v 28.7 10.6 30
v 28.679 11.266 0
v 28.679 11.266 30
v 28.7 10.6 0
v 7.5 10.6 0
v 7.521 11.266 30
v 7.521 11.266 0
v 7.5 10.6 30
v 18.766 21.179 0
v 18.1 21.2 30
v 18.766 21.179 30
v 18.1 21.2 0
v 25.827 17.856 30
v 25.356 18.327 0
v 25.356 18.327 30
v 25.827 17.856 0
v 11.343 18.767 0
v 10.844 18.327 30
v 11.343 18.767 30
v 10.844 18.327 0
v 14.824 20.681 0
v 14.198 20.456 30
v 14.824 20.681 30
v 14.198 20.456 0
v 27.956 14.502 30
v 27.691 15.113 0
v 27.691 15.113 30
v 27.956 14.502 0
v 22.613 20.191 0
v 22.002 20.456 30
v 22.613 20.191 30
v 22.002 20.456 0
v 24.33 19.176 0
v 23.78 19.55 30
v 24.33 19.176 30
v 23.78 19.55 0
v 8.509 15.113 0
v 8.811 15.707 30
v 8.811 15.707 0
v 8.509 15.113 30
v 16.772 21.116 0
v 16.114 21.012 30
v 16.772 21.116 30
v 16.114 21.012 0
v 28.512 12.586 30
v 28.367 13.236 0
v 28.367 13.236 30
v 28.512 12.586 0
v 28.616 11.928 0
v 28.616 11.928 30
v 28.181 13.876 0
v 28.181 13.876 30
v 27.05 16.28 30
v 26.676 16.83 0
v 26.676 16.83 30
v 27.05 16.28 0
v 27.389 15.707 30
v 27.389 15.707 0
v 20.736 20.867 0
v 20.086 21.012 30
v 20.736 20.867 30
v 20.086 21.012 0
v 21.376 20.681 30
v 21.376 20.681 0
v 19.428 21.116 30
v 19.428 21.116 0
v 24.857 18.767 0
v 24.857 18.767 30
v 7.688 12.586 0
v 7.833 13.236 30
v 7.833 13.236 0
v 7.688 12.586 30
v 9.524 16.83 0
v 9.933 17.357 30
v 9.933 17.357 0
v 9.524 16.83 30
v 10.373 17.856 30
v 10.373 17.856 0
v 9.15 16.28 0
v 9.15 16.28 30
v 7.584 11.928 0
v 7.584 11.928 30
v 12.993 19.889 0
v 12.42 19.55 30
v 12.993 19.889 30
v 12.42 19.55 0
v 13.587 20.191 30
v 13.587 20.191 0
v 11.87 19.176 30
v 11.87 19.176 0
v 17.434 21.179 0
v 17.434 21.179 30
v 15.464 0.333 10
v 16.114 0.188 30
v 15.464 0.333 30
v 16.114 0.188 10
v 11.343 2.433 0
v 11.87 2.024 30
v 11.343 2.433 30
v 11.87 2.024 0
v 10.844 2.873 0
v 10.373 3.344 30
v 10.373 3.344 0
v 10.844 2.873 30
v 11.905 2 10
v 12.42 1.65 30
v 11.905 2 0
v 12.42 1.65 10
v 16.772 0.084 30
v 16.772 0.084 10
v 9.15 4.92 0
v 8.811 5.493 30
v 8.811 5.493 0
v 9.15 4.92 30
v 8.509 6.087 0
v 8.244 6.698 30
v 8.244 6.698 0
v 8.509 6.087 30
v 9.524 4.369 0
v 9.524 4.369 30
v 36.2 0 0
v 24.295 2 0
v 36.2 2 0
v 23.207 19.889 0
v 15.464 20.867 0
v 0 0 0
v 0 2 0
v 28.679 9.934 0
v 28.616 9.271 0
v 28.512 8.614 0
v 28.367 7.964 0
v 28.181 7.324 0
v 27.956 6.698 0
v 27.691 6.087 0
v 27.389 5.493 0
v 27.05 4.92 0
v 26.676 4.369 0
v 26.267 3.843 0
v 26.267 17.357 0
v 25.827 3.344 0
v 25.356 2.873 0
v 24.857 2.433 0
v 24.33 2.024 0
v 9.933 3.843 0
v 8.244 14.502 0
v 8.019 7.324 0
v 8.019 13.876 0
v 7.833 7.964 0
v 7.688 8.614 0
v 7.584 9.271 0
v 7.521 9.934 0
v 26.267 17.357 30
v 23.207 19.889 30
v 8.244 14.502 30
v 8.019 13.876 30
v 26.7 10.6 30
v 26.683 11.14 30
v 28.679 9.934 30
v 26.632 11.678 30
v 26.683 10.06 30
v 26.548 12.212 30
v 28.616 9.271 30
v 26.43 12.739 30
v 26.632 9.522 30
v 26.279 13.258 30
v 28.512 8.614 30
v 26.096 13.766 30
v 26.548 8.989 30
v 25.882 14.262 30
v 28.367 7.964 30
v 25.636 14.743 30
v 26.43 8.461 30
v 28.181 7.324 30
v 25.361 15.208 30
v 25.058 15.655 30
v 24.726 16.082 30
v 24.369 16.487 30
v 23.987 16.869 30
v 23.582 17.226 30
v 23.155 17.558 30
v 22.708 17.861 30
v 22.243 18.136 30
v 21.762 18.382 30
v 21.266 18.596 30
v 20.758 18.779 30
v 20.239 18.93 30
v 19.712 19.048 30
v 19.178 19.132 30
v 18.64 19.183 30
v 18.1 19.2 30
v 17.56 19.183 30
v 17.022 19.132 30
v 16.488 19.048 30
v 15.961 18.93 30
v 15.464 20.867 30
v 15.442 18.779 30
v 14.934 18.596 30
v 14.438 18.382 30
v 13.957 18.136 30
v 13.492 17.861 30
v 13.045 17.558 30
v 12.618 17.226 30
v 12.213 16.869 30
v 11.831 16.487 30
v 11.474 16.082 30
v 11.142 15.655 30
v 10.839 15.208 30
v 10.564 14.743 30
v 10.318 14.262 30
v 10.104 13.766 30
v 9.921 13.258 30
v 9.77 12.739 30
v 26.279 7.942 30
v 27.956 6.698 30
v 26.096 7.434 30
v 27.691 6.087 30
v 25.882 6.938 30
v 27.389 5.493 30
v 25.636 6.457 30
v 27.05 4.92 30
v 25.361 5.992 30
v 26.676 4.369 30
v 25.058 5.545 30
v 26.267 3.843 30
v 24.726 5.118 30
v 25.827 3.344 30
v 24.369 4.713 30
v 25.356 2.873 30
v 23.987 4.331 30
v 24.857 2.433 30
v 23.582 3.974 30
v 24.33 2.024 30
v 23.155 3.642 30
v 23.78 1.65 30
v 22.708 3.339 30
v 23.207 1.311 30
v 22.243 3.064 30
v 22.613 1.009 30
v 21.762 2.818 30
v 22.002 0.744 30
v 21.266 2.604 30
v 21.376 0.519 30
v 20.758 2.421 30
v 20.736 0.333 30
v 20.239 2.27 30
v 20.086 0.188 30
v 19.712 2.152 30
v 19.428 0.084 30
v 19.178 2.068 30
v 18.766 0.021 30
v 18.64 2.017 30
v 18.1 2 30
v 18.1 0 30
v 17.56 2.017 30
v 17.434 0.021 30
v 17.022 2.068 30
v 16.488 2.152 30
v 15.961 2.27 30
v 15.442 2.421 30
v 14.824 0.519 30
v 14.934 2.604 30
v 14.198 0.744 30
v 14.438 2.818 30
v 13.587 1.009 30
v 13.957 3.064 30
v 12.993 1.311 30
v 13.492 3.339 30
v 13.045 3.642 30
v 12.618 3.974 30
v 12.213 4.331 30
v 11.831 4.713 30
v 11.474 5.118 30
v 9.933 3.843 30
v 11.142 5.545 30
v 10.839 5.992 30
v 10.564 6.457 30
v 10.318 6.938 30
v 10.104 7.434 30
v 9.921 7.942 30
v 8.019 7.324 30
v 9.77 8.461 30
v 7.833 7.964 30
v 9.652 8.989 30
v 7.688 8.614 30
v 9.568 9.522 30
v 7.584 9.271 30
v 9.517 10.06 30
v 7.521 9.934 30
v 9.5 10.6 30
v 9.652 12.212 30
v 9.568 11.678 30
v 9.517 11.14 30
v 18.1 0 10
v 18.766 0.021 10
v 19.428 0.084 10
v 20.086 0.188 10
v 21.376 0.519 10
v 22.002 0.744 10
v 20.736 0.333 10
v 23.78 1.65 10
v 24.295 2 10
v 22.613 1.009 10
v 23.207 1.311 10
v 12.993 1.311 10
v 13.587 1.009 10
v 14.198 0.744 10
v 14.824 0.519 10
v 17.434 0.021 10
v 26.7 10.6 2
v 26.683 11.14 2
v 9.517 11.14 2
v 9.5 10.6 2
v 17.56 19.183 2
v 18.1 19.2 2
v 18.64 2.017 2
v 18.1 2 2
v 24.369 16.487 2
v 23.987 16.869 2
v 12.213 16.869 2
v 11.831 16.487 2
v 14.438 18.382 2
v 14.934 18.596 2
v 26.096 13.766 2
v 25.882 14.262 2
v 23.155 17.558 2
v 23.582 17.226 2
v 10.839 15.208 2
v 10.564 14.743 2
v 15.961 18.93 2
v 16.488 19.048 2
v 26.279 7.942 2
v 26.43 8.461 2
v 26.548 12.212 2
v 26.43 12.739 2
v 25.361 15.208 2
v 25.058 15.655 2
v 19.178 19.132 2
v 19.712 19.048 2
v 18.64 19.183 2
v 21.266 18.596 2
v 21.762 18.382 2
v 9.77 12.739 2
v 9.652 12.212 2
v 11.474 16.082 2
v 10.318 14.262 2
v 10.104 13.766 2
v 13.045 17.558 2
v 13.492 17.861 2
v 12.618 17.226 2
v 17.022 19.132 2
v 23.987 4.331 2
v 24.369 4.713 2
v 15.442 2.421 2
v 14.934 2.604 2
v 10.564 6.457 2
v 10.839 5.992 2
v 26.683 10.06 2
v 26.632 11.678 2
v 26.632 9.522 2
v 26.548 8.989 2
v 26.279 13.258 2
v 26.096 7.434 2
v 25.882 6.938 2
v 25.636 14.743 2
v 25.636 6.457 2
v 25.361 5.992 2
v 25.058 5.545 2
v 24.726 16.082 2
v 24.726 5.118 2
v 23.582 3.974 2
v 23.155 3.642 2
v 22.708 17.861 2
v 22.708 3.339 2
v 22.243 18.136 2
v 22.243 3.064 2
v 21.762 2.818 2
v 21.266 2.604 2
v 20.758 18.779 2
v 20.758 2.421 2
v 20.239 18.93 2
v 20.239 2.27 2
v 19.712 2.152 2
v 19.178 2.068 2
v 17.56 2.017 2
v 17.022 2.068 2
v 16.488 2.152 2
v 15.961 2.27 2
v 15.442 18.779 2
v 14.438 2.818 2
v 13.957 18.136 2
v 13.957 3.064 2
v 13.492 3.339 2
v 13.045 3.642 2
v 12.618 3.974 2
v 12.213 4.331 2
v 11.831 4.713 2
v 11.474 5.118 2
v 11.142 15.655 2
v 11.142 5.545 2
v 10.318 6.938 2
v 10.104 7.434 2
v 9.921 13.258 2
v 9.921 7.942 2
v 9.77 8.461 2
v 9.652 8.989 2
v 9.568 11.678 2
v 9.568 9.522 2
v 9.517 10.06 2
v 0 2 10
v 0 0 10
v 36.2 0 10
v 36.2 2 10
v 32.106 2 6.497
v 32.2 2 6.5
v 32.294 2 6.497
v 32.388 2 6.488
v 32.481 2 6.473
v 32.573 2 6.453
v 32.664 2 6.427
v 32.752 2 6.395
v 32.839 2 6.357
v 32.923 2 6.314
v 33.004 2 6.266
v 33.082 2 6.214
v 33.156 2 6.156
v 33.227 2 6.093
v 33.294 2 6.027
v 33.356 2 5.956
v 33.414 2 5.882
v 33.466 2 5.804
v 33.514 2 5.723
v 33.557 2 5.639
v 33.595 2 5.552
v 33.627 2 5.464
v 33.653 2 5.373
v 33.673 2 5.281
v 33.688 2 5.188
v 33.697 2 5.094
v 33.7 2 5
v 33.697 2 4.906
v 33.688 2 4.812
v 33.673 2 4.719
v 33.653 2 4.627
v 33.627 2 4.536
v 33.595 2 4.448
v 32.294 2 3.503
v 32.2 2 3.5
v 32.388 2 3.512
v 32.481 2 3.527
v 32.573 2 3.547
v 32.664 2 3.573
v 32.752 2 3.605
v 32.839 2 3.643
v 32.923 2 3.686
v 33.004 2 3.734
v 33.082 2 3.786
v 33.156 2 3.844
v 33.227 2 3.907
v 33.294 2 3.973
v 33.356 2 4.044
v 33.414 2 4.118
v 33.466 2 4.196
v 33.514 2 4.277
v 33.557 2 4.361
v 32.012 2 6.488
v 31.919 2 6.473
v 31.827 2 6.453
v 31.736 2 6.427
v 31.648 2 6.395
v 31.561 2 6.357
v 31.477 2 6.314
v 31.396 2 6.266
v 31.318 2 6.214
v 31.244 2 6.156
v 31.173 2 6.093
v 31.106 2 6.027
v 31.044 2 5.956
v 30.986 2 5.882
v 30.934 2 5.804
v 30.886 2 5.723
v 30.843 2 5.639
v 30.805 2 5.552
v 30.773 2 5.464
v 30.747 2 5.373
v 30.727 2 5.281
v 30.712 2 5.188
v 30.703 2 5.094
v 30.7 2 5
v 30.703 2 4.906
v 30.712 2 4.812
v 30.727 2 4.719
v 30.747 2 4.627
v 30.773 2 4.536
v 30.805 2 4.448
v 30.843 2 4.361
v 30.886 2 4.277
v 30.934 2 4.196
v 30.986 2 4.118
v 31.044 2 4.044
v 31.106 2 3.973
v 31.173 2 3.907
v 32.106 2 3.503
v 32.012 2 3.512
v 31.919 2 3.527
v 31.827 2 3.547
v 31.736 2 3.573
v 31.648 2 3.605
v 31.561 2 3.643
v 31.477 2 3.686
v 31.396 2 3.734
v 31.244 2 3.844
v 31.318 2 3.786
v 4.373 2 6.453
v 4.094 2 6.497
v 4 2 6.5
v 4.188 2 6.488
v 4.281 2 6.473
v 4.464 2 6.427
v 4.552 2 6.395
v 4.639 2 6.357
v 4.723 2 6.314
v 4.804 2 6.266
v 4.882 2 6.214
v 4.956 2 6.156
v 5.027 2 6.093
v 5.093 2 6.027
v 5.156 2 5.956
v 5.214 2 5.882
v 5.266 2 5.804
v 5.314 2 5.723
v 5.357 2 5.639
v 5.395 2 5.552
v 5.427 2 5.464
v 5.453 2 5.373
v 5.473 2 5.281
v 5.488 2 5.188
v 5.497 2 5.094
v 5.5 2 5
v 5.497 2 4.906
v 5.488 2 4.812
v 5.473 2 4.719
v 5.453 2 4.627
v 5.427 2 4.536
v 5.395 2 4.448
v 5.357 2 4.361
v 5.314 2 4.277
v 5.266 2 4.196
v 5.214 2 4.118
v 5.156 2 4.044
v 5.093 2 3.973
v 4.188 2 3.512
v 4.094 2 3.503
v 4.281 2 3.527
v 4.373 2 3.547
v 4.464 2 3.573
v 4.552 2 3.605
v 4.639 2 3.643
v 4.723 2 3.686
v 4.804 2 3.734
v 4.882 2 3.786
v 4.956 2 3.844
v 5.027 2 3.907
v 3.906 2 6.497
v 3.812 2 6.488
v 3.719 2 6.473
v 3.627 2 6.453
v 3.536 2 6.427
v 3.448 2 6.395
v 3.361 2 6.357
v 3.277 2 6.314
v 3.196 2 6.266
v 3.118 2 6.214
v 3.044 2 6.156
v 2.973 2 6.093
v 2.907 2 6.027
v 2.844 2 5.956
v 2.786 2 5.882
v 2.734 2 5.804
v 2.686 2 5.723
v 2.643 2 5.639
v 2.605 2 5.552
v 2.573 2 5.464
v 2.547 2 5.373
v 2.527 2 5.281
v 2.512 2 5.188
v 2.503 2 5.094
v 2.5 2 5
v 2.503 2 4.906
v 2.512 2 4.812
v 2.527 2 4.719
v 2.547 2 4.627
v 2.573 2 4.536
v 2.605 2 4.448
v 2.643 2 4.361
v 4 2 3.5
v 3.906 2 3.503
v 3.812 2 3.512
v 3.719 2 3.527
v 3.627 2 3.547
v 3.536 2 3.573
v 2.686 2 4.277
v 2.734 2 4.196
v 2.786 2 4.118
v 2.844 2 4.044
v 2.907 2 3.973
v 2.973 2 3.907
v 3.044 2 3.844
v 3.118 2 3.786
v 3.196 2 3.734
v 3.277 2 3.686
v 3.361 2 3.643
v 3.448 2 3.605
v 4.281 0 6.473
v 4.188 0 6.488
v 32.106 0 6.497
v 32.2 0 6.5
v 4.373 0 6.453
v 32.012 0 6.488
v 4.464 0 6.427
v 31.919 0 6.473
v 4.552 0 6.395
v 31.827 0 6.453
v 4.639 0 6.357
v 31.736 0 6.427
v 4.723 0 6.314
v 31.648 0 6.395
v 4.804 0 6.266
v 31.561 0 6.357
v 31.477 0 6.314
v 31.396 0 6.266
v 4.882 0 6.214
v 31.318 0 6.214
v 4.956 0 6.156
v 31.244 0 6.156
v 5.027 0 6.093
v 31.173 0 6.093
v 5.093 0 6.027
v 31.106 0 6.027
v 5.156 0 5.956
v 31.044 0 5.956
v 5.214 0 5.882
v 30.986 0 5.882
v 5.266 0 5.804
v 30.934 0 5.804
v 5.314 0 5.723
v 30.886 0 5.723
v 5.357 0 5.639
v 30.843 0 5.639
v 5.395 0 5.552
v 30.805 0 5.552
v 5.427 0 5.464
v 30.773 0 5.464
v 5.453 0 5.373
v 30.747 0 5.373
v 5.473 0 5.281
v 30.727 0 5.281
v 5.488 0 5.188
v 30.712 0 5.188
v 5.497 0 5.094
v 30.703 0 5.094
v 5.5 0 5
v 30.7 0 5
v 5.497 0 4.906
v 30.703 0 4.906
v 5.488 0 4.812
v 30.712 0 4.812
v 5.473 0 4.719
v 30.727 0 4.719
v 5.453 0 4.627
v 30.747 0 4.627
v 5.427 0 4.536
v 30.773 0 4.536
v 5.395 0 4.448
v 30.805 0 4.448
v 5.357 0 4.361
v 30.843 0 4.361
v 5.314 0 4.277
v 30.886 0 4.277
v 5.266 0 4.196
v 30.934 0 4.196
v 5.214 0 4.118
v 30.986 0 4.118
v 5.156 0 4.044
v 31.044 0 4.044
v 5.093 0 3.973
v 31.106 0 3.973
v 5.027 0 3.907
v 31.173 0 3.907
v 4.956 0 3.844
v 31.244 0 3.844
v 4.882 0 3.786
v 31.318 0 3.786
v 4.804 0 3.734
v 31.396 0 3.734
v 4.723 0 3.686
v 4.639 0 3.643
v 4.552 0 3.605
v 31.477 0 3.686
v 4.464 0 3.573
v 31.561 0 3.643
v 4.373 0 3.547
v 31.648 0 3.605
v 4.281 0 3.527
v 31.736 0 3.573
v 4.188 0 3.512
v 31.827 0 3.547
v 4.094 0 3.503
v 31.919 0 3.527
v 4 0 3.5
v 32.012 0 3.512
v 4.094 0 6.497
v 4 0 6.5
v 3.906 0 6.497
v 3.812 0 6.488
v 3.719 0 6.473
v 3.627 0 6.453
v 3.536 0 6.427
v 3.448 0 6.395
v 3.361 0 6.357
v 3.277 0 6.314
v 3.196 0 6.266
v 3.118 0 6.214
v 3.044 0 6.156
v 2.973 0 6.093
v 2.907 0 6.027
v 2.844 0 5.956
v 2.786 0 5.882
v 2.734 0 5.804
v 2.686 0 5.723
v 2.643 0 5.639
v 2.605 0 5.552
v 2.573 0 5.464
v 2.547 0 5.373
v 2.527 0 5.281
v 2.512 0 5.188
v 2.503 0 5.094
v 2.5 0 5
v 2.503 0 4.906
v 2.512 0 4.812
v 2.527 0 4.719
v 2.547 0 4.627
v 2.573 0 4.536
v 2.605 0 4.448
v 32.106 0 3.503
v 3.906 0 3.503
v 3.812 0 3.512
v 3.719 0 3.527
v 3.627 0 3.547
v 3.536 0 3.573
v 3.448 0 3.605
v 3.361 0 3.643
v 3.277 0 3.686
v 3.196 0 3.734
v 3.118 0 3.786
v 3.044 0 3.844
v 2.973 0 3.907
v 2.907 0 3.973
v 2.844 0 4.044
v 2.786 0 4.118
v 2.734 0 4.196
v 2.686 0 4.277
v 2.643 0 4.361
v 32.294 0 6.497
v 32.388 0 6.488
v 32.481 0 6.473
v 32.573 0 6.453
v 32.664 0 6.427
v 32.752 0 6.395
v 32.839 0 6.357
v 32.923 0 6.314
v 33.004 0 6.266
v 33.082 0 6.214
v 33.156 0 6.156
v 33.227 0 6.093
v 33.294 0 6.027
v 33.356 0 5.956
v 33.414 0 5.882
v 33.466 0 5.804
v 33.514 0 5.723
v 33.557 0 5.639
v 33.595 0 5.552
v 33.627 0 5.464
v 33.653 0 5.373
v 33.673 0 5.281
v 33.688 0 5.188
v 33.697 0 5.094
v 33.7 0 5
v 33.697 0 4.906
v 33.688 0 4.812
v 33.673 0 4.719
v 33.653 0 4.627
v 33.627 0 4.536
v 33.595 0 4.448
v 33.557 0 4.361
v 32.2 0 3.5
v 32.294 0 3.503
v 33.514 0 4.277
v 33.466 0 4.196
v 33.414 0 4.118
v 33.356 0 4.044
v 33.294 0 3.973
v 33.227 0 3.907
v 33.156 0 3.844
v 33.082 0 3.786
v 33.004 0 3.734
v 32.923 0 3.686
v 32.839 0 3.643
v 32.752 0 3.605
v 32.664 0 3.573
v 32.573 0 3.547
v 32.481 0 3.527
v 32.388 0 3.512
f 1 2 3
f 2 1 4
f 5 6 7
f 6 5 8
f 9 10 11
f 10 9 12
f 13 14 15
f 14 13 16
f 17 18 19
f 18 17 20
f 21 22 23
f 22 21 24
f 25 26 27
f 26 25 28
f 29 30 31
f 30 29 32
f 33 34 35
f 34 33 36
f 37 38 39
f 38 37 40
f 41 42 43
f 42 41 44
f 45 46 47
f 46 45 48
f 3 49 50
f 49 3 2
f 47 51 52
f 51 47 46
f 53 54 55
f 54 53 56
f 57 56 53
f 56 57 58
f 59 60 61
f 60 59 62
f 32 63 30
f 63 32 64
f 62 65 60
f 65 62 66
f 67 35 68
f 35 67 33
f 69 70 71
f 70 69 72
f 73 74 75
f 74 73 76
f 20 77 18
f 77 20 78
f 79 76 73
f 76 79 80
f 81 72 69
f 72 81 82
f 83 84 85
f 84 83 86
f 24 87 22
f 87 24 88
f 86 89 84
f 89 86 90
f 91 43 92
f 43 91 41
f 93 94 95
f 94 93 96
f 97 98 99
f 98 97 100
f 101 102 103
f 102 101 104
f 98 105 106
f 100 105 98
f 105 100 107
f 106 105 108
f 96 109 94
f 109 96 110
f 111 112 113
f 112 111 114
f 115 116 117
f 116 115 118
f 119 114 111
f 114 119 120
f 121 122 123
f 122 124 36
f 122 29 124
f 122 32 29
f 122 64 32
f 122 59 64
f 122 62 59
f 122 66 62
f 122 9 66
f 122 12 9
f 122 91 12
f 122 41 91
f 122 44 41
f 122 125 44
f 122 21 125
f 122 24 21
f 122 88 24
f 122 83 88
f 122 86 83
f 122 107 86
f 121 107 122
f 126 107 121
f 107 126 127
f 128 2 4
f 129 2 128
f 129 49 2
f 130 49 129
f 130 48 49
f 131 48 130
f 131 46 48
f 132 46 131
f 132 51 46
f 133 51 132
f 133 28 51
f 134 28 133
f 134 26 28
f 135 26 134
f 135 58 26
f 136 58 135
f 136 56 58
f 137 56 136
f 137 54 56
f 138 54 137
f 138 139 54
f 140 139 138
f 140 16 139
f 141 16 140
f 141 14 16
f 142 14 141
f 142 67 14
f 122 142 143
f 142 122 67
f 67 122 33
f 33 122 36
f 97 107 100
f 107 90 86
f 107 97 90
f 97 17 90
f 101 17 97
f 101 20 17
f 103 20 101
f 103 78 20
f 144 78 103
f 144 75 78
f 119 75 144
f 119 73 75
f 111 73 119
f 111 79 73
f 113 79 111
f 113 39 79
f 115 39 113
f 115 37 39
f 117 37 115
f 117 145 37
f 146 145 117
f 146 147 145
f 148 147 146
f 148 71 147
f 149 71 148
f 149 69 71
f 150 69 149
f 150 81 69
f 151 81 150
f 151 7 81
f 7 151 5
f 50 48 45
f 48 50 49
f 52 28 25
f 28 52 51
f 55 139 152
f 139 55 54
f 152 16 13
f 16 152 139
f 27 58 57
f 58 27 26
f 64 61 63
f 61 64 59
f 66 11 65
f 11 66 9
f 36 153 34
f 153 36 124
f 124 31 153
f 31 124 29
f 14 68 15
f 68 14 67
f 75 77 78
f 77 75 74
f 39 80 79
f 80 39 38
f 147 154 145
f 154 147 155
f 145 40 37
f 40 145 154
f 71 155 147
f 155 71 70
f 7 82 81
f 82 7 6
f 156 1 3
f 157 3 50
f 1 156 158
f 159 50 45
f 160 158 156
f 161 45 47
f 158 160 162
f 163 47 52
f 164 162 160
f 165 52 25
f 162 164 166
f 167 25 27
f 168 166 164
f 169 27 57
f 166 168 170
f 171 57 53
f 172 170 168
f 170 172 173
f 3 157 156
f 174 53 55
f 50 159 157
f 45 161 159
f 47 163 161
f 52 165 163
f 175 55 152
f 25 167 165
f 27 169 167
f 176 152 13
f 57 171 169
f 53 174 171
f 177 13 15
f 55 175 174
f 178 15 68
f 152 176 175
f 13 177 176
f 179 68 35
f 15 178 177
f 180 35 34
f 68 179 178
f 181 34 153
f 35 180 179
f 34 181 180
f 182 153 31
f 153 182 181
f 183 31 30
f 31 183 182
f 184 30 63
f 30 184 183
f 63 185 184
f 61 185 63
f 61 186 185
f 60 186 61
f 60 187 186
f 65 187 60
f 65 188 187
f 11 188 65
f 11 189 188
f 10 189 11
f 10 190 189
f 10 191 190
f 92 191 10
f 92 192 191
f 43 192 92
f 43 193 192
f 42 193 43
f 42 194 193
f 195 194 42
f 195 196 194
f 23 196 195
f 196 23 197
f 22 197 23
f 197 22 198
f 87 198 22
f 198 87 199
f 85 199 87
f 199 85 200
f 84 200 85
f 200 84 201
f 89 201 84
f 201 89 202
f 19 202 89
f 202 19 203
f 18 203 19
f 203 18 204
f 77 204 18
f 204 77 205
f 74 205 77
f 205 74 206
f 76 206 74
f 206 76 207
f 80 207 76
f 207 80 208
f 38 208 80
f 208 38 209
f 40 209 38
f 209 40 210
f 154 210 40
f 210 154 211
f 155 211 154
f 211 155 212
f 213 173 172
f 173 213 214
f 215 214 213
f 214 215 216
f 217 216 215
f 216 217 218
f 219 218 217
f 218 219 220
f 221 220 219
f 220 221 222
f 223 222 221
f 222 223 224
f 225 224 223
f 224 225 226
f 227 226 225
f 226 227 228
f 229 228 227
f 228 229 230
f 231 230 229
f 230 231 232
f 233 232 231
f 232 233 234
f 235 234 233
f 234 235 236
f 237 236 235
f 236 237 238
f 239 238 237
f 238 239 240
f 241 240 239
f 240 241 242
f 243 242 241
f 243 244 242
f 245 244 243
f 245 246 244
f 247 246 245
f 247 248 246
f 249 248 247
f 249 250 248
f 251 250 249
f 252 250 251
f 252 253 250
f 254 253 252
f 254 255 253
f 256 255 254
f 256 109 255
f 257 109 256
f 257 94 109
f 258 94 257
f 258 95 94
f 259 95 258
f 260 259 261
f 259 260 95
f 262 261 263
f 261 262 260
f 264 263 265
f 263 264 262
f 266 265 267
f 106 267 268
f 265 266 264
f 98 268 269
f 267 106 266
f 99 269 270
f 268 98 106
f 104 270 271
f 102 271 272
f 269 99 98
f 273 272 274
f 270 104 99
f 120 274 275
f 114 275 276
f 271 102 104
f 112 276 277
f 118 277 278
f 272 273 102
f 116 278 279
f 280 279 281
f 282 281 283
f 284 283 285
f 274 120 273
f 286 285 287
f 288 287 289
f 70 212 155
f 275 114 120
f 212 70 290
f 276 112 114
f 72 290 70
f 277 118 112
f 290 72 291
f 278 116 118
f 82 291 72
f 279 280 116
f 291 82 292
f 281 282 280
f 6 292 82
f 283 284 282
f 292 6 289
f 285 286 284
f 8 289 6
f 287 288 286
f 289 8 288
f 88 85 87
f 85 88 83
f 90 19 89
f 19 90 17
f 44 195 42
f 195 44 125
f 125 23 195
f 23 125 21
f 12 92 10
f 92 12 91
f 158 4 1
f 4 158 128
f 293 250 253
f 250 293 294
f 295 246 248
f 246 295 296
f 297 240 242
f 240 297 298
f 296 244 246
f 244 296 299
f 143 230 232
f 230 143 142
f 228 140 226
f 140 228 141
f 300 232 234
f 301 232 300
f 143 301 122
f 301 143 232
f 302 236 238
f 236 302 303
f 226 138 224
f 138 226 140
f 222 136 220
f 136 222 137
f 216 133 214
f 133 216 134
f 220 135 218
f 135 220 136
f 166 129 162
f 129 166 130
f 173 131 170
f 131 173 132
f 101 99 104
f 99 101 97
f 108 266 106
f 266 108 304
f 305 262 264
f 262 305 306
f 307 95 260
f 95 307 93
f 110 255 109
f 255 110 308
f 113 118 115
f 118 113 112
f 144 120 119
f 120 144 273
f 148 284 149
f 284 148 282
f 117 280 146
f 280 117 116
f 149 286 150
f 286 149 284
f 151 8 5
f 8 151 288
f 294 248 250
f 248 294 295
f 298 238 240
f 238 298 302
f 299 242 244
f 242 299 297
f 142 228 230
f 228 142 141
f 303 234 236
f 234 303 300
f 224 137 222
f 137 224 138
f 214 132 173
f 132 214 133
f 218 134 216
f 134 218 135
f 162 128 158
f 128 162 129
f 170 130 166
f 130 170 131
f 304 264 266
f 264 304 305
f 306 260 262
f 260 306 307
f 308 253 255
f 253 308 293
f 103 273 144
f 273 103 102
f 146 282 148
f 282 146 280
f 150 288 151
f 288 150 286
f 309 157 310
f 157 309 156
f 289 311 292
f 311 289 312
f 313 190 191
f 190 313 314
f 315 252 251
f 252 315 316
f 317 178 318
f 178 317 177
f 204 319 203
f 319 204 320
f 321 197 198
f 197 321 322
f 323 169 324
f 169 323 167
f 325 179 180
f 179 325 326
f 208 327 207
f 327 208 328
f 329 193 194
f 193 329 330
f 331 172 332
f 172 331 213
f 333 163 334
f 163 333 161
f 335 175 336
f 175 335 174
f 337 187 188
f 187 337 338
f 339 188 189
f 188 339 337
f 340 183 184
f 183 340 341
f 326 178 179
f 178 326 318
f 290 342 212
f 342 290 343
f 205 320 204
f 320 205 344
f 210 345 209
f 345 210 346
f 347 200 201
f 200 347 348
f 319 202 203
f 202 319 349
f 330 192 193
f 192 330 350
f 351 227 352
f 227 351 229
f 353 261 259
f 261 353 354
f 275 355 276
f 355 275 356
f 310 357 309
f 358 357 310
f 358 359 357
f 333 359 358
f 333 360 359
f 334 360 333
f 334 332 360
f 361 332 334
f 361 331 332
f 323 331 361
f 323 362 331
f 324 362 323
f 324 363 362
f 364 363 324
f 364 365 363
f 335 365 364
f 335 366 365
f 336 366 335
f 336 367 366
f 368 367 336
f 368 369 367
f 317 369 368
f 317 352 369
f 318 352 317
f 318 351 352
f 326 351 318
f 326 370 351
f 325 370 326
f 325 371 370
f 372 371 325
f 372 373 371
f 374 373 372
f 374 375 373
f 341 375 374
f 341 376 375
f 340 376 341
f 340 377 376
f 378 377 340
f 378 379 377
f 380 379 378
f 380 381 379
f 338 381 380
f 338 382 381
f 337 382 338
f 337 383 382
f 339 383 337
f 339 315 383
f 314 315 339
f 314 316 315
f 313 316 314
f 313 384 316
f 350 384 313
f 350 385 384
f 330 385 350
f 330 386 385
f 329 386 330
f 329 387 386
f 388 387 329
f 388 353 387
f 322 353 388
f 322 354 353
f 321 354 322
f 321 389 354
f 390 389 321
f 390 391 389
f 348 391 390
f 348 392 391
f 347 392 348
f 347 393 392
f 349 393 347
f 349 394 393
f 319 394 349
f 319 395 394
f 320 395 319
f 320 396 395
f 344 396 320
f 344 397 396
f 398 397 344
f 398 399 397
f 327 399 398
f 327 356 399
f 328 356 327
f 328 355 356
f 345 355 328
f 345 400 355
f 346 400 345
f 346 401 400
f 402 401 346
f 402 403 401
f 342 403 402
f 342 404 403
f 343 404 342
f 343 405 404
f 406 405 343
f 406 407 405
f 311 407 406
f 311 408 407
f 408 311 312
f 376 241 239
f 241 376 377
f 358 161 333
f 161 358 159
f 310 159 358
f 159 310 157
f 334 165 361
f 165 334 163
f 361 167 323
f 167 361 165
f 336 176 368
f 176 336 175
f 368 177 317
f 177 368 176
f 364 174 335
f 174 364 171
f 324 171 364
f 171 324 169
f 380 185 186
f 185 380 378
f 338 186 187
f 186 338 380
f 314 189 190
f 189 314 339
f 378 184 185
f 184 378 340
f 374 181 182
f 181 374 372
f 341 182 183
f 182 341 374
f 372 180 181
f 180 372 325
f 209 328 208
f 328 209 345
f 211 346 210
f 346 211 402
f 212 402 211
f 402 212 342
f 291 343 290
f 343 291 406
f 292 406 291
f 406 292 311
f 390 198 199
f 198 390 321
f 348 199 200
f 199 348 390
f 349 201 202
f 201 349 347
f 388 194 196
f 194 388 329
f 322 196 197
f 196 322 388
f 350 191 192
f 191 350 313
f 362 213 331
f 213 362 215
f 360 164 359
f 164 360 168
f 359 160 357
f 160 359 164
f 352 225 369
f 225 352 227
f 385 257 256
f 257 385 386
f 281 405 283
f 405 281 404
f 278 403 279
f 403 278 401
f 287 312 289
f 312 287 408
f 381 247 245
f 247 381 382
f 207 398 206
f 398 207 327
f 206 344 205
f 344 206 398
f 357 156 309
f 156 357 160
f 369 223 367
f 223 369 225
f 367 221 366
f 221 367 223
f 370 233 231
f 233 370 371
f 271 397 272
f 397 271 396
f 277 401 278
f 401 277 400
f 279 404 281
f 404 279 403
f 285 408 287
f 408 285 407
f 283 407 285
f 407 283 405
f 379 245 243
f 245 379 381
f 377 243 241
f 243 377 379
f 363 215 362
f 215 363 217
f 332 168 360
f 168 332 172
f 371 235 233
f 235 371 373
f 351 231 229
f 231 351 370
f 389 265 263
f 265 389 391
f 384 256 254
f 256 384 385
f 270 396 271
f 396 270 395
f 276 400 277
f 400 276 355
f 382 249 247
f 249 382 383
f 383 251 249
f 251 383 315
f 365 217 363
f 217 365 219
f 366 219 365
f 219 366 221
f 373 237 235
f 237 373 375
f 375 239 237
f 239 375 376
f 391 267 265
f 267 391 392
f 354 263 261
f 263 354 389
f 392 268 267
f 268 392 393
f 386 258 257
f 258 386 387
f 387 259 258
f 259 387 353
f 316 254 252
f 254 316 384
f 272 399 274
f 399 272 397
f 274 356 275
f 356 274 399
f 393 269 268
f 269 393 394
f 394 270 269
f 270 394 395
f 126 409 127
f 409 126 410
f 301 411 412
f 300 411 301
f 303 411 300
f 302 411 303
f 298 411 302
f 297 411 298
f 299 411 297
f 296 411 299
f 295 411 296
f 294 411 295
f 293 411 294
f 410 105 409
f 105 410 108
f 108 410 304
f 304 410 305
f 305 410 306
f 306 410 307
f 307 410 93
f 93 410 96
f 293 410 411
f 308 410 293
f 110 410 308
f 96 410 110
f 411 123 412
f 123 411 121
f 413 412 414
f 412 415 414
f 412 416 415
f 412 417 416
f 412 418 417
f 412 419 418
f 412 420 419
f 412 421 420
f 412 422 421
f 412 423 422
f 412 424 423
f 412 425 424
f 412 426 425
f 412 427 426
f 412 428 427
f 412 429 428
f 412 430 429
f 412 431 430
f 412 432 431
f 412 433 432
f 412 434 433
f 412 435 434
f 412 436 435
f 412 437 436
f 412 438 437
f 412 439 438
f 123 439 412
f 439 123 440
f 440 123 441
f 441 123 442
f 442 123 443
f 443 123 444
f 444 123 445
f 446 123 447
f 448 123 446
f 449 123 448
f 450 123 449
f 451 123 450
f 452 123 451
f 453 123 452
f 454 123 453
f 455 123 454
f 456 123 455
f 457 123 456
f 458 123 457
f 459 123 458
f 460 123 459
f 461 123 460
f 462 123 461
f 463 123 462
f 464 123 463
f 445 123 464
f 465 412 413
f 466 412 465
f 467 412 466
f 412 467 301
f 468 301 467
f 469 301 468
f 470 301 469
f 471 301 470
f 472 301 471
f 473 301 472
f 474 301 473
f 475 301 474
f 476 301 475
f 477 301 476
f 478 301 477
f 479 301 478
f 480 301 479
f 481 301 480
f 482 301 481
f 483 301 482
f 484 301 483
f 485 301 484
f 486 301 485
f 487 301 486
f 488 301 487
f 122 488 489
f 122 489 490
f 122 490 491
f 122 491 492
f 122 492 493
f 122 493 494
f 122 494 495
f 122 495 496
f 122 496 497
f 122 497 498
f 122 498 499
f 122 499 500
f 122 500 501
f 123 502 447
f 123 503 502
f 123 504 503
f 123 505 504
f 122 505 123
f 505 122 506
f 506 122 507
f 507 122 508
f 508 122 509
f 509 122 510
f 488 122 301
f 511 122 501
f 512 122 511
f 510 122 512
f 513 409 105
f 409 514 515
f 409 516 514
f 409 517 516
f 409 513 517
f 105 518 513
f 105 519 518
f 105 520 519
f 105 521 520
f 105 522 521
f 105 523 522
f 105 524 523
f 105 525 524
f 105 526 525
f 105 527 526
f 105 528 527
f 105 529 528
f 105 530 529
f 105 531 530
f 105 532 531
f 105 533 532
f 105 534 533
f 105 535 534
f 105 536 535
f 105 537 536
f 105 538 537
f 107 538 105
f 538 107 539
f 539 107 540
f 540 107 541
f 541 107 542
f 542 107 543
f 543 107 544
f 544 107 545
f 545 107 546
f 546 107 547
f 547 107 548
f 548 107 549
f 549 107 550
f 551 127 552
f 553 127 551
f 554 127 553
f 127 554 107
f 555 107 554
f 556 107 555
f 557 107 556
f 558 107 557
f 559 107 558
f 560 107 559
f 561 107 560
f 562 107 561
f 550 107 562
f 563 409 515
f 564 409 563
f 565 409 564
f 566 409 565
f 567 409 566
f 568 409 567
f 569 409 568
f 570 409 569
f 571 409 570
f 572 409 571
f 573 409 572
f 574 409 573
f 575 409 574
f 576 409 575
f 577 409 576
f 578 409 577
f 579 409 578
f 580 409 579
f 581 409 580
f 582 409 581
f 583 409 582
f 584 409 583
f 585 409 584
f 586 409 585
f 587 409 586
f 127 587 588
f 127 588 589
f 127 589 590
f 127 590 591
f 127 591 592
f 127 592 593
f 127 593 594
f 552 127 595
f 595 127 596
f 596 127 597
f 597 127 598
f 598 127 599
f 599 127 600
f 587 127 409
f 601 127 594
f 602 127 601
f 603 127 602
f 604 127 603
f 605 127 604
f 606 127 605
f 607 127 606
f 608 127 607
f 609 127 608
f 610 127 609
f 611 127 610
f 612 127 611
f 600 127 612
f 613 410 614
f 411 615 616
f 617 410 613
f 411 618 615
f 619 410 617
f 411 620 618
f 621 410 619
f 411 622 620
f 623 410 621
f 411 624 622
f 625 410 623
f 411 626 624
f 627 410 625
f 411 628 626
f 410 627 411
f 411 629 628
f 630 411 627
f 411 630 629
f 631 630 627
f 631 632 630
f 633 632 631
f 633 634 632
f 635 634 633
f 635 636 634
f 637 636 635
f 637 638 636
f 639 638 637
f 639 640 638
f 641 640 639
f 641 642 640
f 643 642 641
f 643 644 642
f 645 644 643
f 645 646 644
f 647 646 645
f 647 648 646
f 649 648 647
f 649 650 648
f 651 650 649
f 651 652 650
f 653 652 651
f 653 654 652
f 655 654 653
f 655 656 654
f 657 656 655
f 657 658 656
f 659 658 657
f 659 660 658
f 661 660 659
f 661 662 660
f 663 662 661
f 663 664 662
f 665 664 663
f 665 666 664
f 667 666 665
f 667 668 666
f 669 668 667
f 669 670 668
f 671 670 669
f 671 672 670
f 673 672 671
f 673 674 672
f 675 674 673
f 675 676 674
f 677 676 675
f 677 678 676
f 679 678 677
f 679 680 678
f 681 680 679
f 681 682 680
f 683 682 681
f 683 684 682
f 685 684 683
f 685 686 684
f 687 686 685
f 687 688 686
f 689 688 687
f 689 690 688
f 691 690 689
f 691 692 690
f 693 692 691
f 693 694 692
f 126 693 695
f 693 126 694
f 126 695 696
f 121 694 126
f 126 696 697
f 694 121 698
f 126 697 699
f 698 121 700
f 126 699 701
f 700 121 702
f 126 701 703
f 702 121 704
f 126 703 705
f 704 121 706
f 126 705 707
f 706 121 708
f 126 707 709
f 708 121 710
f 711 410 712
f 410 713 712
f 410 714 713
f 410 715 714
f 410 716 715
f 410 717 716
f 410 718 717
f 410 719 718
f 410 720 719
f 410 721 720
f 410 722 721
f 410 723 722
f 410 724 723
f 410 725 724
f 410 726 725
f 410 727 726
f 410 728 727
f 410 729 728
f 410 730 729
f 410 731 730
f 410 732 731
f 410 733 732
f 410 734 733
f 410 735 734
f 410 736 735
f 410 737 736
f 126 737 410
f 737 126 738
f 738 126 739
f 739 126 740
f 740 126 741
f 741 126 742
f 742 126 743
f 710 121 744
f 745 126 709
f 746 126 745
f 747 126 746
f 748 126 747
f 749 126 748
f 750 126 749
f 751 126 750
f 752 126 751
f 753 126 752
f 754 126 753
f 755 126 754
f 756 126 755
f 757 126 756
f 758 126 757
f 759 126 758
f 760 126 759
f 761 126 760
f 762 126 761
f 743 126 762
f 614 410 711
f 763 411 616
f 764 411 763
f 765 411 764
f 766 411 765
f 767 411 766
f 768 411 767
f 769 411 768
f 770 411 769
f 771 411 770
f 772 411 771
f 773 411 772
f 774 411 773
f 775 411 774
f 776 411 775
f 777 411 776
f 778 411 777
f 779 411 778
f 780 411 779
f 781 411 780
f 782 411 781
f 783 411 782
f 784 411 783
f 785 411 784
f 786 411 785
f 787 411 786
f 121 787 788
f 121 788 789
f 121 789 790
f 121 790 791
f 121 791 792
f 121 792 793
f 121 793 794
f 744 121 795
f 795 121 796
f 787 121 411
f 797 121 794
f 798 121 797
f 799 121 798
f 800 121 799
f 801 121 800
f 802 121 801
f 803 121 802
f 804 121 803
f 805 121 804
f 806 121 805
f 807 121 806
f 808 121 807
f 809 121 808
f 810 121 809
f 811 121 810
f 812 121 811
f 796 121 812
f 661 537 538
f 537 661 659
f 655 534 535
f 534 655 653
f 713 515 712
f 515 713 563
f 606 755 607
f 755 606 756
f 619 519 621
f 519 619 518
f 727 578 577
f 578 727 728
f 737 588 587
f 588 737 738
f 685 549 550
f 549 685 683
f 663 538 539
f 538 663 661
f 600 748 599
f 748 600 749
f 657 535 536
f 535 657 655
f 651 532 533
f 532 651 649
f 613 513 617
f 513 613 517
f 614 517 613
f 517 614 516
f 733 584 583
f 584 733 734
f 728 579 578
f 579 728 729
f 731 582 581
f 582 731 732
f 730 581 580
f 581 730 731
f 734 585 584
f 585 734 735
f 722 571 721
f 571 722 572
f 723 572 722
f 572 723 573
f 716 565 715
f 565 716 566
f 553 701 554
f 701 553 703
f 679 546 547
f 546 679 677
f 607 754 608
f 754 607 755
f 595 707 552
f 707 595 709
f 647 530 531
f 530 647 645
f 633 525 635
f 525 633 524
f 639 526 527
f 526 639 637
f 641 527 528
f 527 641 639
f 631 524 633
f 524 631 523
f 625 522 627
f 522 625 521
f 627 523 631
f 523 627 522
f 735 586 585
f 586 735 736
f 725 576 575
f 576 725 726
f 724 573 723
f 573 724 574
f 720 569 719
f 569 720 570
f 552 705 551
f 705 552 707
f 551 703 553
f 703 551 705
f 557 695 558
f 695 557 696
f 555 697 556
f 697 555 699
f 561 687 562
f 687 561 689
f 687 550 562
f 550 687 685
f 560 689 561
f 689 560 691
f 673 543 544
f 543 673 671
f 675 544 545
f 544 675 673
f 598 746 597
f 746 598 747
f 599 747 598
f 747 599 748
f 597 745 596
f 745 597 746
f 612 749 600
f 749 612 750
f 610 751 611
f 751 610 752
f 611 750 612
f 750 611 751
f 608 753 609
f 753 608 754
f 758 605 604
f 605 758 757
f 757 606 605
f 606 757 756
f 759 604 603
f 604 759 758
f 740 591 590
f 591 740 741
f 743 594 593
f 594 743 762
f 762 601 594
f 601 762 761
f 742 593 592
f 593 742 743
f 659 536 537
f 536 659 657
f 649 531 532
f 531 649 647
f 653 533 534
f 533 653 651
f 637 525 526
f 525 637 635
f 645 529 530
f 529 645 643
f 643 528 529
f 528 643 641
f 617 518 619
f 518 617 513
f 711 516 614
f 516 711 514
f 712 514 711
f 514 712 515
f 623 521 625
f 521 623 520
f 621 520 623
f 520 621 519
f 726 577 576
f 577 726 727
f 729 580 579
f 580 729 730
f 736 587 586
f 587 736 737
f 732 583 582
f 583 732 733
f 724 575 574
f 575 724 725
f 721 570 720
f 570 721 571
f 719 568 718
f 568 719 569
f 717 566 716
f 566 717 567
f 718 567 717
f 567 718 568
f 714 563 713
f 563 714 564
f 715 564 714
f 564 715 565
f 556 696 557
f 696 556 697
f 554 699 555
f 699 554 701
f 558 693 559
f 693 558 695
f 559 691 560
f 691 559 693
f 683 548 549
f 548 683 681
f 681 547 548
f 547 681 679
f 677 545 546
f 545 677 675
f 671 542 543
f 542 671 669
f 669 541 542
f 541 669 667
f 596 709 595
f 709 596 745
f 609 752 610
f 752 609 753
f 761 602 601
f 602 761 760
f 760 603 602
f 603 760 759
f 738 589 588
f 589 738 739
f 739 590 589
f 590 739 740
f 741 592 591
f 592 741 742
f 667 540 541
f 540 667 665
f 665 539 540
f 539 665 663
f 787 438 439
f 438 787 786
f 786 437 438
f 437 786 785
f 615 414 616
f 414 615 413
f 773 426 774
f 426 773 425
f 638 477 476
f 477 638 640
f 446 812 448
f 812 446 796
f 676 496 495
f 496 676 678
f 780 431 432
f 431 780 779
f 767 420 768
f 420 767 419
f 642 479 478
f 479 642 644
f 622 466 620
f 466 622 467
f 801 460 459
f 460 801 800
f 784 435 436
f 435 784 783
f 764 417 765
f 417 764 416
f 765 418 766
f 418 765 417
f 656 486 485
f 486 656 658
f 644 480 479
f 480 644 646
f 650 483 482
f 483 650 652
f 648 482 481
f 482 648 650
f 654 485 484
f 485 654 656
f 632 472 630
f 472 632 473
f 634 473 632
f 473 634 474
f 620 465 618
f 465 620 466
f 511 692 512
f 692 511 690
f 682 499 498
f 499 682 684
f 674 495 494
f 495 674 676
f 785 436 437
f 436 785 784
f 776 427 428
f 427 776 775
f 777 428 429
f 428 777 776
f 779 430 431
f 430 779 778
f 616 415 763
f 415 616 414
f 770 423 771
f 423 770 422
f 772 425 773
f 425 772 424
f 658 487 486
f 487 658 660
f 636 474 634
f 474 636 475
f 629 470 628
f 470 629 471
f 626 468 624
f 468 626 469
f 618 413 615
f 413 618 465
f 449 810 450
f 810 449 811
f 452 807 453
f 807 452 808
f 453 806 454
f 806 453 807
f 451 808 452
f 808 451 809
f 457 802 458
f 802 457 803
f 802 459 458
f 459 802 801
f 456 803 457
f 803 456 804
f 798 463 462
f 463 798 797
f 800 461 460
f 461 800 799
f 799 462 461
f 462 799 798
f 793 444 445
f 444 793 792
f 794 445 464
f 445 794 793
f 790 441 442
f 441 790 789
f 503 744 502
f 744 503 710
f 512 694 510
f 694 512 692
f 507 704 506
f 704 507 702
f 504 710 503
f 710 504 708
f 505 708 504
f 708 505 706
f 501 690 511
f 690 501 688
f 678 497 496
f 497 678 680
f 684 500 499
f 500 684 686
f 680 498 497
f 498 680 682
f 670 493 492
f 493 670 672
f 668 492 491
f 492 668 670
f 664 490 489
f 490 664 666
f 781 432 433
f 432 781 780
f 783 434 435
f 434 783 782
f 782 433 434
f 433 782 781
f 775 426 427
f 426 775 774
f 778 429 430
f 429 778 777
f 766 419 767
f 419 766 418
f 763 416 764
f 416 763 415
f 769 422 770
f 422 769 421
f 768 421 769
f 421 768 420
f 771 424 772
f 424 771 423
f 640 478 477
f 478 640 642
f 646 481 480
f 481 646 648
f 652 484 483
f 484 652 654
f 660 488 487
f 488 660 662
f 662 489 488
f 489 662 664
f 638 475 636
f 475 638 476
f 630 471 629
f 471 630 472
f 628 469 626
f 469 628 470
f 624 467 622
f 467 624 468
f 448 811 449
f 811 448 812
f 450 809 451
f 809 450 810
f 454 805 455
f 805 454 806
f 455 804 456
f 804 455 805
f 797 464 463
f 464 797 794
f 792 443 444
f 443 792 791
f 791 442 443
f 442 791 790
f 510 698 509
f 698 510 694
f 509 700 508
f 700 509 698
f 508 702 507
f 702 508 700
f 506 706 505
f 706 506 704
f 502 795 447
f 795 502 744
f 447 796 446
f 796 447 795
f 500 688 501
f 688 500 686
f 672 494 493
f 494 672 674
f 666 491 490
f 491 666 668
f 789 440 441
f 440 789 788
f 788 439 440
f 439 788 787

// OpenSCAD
$fn = 100;

cyl_dia = 16.2;

translate([10 + cyl_dia / 2, cyl_dia / 2 + 0.5 + 2, 0])
difference() {
    cylinder(h = 30, r = (cyl_dia + 1) / 2 + 2);
    translate([0, 0, 2])
    cylinder(h = 30, r = (cyl_dia + 1) / 2);
}

difference() {
    translate([0, 0, 0])
    cube([cyl_dia + 20, 2, 10]);

    color("red")
    translate([4, 3, 5])
    rotate([90, 0, 0])
    cylinder(h = 4, r = 1.5);


    color("red")
    translate([cyl_dia + 20 - 4, 3, 5])
    rotate([90, 0, 0])
    cylinder(h = 4, r = 1.5);    
}
